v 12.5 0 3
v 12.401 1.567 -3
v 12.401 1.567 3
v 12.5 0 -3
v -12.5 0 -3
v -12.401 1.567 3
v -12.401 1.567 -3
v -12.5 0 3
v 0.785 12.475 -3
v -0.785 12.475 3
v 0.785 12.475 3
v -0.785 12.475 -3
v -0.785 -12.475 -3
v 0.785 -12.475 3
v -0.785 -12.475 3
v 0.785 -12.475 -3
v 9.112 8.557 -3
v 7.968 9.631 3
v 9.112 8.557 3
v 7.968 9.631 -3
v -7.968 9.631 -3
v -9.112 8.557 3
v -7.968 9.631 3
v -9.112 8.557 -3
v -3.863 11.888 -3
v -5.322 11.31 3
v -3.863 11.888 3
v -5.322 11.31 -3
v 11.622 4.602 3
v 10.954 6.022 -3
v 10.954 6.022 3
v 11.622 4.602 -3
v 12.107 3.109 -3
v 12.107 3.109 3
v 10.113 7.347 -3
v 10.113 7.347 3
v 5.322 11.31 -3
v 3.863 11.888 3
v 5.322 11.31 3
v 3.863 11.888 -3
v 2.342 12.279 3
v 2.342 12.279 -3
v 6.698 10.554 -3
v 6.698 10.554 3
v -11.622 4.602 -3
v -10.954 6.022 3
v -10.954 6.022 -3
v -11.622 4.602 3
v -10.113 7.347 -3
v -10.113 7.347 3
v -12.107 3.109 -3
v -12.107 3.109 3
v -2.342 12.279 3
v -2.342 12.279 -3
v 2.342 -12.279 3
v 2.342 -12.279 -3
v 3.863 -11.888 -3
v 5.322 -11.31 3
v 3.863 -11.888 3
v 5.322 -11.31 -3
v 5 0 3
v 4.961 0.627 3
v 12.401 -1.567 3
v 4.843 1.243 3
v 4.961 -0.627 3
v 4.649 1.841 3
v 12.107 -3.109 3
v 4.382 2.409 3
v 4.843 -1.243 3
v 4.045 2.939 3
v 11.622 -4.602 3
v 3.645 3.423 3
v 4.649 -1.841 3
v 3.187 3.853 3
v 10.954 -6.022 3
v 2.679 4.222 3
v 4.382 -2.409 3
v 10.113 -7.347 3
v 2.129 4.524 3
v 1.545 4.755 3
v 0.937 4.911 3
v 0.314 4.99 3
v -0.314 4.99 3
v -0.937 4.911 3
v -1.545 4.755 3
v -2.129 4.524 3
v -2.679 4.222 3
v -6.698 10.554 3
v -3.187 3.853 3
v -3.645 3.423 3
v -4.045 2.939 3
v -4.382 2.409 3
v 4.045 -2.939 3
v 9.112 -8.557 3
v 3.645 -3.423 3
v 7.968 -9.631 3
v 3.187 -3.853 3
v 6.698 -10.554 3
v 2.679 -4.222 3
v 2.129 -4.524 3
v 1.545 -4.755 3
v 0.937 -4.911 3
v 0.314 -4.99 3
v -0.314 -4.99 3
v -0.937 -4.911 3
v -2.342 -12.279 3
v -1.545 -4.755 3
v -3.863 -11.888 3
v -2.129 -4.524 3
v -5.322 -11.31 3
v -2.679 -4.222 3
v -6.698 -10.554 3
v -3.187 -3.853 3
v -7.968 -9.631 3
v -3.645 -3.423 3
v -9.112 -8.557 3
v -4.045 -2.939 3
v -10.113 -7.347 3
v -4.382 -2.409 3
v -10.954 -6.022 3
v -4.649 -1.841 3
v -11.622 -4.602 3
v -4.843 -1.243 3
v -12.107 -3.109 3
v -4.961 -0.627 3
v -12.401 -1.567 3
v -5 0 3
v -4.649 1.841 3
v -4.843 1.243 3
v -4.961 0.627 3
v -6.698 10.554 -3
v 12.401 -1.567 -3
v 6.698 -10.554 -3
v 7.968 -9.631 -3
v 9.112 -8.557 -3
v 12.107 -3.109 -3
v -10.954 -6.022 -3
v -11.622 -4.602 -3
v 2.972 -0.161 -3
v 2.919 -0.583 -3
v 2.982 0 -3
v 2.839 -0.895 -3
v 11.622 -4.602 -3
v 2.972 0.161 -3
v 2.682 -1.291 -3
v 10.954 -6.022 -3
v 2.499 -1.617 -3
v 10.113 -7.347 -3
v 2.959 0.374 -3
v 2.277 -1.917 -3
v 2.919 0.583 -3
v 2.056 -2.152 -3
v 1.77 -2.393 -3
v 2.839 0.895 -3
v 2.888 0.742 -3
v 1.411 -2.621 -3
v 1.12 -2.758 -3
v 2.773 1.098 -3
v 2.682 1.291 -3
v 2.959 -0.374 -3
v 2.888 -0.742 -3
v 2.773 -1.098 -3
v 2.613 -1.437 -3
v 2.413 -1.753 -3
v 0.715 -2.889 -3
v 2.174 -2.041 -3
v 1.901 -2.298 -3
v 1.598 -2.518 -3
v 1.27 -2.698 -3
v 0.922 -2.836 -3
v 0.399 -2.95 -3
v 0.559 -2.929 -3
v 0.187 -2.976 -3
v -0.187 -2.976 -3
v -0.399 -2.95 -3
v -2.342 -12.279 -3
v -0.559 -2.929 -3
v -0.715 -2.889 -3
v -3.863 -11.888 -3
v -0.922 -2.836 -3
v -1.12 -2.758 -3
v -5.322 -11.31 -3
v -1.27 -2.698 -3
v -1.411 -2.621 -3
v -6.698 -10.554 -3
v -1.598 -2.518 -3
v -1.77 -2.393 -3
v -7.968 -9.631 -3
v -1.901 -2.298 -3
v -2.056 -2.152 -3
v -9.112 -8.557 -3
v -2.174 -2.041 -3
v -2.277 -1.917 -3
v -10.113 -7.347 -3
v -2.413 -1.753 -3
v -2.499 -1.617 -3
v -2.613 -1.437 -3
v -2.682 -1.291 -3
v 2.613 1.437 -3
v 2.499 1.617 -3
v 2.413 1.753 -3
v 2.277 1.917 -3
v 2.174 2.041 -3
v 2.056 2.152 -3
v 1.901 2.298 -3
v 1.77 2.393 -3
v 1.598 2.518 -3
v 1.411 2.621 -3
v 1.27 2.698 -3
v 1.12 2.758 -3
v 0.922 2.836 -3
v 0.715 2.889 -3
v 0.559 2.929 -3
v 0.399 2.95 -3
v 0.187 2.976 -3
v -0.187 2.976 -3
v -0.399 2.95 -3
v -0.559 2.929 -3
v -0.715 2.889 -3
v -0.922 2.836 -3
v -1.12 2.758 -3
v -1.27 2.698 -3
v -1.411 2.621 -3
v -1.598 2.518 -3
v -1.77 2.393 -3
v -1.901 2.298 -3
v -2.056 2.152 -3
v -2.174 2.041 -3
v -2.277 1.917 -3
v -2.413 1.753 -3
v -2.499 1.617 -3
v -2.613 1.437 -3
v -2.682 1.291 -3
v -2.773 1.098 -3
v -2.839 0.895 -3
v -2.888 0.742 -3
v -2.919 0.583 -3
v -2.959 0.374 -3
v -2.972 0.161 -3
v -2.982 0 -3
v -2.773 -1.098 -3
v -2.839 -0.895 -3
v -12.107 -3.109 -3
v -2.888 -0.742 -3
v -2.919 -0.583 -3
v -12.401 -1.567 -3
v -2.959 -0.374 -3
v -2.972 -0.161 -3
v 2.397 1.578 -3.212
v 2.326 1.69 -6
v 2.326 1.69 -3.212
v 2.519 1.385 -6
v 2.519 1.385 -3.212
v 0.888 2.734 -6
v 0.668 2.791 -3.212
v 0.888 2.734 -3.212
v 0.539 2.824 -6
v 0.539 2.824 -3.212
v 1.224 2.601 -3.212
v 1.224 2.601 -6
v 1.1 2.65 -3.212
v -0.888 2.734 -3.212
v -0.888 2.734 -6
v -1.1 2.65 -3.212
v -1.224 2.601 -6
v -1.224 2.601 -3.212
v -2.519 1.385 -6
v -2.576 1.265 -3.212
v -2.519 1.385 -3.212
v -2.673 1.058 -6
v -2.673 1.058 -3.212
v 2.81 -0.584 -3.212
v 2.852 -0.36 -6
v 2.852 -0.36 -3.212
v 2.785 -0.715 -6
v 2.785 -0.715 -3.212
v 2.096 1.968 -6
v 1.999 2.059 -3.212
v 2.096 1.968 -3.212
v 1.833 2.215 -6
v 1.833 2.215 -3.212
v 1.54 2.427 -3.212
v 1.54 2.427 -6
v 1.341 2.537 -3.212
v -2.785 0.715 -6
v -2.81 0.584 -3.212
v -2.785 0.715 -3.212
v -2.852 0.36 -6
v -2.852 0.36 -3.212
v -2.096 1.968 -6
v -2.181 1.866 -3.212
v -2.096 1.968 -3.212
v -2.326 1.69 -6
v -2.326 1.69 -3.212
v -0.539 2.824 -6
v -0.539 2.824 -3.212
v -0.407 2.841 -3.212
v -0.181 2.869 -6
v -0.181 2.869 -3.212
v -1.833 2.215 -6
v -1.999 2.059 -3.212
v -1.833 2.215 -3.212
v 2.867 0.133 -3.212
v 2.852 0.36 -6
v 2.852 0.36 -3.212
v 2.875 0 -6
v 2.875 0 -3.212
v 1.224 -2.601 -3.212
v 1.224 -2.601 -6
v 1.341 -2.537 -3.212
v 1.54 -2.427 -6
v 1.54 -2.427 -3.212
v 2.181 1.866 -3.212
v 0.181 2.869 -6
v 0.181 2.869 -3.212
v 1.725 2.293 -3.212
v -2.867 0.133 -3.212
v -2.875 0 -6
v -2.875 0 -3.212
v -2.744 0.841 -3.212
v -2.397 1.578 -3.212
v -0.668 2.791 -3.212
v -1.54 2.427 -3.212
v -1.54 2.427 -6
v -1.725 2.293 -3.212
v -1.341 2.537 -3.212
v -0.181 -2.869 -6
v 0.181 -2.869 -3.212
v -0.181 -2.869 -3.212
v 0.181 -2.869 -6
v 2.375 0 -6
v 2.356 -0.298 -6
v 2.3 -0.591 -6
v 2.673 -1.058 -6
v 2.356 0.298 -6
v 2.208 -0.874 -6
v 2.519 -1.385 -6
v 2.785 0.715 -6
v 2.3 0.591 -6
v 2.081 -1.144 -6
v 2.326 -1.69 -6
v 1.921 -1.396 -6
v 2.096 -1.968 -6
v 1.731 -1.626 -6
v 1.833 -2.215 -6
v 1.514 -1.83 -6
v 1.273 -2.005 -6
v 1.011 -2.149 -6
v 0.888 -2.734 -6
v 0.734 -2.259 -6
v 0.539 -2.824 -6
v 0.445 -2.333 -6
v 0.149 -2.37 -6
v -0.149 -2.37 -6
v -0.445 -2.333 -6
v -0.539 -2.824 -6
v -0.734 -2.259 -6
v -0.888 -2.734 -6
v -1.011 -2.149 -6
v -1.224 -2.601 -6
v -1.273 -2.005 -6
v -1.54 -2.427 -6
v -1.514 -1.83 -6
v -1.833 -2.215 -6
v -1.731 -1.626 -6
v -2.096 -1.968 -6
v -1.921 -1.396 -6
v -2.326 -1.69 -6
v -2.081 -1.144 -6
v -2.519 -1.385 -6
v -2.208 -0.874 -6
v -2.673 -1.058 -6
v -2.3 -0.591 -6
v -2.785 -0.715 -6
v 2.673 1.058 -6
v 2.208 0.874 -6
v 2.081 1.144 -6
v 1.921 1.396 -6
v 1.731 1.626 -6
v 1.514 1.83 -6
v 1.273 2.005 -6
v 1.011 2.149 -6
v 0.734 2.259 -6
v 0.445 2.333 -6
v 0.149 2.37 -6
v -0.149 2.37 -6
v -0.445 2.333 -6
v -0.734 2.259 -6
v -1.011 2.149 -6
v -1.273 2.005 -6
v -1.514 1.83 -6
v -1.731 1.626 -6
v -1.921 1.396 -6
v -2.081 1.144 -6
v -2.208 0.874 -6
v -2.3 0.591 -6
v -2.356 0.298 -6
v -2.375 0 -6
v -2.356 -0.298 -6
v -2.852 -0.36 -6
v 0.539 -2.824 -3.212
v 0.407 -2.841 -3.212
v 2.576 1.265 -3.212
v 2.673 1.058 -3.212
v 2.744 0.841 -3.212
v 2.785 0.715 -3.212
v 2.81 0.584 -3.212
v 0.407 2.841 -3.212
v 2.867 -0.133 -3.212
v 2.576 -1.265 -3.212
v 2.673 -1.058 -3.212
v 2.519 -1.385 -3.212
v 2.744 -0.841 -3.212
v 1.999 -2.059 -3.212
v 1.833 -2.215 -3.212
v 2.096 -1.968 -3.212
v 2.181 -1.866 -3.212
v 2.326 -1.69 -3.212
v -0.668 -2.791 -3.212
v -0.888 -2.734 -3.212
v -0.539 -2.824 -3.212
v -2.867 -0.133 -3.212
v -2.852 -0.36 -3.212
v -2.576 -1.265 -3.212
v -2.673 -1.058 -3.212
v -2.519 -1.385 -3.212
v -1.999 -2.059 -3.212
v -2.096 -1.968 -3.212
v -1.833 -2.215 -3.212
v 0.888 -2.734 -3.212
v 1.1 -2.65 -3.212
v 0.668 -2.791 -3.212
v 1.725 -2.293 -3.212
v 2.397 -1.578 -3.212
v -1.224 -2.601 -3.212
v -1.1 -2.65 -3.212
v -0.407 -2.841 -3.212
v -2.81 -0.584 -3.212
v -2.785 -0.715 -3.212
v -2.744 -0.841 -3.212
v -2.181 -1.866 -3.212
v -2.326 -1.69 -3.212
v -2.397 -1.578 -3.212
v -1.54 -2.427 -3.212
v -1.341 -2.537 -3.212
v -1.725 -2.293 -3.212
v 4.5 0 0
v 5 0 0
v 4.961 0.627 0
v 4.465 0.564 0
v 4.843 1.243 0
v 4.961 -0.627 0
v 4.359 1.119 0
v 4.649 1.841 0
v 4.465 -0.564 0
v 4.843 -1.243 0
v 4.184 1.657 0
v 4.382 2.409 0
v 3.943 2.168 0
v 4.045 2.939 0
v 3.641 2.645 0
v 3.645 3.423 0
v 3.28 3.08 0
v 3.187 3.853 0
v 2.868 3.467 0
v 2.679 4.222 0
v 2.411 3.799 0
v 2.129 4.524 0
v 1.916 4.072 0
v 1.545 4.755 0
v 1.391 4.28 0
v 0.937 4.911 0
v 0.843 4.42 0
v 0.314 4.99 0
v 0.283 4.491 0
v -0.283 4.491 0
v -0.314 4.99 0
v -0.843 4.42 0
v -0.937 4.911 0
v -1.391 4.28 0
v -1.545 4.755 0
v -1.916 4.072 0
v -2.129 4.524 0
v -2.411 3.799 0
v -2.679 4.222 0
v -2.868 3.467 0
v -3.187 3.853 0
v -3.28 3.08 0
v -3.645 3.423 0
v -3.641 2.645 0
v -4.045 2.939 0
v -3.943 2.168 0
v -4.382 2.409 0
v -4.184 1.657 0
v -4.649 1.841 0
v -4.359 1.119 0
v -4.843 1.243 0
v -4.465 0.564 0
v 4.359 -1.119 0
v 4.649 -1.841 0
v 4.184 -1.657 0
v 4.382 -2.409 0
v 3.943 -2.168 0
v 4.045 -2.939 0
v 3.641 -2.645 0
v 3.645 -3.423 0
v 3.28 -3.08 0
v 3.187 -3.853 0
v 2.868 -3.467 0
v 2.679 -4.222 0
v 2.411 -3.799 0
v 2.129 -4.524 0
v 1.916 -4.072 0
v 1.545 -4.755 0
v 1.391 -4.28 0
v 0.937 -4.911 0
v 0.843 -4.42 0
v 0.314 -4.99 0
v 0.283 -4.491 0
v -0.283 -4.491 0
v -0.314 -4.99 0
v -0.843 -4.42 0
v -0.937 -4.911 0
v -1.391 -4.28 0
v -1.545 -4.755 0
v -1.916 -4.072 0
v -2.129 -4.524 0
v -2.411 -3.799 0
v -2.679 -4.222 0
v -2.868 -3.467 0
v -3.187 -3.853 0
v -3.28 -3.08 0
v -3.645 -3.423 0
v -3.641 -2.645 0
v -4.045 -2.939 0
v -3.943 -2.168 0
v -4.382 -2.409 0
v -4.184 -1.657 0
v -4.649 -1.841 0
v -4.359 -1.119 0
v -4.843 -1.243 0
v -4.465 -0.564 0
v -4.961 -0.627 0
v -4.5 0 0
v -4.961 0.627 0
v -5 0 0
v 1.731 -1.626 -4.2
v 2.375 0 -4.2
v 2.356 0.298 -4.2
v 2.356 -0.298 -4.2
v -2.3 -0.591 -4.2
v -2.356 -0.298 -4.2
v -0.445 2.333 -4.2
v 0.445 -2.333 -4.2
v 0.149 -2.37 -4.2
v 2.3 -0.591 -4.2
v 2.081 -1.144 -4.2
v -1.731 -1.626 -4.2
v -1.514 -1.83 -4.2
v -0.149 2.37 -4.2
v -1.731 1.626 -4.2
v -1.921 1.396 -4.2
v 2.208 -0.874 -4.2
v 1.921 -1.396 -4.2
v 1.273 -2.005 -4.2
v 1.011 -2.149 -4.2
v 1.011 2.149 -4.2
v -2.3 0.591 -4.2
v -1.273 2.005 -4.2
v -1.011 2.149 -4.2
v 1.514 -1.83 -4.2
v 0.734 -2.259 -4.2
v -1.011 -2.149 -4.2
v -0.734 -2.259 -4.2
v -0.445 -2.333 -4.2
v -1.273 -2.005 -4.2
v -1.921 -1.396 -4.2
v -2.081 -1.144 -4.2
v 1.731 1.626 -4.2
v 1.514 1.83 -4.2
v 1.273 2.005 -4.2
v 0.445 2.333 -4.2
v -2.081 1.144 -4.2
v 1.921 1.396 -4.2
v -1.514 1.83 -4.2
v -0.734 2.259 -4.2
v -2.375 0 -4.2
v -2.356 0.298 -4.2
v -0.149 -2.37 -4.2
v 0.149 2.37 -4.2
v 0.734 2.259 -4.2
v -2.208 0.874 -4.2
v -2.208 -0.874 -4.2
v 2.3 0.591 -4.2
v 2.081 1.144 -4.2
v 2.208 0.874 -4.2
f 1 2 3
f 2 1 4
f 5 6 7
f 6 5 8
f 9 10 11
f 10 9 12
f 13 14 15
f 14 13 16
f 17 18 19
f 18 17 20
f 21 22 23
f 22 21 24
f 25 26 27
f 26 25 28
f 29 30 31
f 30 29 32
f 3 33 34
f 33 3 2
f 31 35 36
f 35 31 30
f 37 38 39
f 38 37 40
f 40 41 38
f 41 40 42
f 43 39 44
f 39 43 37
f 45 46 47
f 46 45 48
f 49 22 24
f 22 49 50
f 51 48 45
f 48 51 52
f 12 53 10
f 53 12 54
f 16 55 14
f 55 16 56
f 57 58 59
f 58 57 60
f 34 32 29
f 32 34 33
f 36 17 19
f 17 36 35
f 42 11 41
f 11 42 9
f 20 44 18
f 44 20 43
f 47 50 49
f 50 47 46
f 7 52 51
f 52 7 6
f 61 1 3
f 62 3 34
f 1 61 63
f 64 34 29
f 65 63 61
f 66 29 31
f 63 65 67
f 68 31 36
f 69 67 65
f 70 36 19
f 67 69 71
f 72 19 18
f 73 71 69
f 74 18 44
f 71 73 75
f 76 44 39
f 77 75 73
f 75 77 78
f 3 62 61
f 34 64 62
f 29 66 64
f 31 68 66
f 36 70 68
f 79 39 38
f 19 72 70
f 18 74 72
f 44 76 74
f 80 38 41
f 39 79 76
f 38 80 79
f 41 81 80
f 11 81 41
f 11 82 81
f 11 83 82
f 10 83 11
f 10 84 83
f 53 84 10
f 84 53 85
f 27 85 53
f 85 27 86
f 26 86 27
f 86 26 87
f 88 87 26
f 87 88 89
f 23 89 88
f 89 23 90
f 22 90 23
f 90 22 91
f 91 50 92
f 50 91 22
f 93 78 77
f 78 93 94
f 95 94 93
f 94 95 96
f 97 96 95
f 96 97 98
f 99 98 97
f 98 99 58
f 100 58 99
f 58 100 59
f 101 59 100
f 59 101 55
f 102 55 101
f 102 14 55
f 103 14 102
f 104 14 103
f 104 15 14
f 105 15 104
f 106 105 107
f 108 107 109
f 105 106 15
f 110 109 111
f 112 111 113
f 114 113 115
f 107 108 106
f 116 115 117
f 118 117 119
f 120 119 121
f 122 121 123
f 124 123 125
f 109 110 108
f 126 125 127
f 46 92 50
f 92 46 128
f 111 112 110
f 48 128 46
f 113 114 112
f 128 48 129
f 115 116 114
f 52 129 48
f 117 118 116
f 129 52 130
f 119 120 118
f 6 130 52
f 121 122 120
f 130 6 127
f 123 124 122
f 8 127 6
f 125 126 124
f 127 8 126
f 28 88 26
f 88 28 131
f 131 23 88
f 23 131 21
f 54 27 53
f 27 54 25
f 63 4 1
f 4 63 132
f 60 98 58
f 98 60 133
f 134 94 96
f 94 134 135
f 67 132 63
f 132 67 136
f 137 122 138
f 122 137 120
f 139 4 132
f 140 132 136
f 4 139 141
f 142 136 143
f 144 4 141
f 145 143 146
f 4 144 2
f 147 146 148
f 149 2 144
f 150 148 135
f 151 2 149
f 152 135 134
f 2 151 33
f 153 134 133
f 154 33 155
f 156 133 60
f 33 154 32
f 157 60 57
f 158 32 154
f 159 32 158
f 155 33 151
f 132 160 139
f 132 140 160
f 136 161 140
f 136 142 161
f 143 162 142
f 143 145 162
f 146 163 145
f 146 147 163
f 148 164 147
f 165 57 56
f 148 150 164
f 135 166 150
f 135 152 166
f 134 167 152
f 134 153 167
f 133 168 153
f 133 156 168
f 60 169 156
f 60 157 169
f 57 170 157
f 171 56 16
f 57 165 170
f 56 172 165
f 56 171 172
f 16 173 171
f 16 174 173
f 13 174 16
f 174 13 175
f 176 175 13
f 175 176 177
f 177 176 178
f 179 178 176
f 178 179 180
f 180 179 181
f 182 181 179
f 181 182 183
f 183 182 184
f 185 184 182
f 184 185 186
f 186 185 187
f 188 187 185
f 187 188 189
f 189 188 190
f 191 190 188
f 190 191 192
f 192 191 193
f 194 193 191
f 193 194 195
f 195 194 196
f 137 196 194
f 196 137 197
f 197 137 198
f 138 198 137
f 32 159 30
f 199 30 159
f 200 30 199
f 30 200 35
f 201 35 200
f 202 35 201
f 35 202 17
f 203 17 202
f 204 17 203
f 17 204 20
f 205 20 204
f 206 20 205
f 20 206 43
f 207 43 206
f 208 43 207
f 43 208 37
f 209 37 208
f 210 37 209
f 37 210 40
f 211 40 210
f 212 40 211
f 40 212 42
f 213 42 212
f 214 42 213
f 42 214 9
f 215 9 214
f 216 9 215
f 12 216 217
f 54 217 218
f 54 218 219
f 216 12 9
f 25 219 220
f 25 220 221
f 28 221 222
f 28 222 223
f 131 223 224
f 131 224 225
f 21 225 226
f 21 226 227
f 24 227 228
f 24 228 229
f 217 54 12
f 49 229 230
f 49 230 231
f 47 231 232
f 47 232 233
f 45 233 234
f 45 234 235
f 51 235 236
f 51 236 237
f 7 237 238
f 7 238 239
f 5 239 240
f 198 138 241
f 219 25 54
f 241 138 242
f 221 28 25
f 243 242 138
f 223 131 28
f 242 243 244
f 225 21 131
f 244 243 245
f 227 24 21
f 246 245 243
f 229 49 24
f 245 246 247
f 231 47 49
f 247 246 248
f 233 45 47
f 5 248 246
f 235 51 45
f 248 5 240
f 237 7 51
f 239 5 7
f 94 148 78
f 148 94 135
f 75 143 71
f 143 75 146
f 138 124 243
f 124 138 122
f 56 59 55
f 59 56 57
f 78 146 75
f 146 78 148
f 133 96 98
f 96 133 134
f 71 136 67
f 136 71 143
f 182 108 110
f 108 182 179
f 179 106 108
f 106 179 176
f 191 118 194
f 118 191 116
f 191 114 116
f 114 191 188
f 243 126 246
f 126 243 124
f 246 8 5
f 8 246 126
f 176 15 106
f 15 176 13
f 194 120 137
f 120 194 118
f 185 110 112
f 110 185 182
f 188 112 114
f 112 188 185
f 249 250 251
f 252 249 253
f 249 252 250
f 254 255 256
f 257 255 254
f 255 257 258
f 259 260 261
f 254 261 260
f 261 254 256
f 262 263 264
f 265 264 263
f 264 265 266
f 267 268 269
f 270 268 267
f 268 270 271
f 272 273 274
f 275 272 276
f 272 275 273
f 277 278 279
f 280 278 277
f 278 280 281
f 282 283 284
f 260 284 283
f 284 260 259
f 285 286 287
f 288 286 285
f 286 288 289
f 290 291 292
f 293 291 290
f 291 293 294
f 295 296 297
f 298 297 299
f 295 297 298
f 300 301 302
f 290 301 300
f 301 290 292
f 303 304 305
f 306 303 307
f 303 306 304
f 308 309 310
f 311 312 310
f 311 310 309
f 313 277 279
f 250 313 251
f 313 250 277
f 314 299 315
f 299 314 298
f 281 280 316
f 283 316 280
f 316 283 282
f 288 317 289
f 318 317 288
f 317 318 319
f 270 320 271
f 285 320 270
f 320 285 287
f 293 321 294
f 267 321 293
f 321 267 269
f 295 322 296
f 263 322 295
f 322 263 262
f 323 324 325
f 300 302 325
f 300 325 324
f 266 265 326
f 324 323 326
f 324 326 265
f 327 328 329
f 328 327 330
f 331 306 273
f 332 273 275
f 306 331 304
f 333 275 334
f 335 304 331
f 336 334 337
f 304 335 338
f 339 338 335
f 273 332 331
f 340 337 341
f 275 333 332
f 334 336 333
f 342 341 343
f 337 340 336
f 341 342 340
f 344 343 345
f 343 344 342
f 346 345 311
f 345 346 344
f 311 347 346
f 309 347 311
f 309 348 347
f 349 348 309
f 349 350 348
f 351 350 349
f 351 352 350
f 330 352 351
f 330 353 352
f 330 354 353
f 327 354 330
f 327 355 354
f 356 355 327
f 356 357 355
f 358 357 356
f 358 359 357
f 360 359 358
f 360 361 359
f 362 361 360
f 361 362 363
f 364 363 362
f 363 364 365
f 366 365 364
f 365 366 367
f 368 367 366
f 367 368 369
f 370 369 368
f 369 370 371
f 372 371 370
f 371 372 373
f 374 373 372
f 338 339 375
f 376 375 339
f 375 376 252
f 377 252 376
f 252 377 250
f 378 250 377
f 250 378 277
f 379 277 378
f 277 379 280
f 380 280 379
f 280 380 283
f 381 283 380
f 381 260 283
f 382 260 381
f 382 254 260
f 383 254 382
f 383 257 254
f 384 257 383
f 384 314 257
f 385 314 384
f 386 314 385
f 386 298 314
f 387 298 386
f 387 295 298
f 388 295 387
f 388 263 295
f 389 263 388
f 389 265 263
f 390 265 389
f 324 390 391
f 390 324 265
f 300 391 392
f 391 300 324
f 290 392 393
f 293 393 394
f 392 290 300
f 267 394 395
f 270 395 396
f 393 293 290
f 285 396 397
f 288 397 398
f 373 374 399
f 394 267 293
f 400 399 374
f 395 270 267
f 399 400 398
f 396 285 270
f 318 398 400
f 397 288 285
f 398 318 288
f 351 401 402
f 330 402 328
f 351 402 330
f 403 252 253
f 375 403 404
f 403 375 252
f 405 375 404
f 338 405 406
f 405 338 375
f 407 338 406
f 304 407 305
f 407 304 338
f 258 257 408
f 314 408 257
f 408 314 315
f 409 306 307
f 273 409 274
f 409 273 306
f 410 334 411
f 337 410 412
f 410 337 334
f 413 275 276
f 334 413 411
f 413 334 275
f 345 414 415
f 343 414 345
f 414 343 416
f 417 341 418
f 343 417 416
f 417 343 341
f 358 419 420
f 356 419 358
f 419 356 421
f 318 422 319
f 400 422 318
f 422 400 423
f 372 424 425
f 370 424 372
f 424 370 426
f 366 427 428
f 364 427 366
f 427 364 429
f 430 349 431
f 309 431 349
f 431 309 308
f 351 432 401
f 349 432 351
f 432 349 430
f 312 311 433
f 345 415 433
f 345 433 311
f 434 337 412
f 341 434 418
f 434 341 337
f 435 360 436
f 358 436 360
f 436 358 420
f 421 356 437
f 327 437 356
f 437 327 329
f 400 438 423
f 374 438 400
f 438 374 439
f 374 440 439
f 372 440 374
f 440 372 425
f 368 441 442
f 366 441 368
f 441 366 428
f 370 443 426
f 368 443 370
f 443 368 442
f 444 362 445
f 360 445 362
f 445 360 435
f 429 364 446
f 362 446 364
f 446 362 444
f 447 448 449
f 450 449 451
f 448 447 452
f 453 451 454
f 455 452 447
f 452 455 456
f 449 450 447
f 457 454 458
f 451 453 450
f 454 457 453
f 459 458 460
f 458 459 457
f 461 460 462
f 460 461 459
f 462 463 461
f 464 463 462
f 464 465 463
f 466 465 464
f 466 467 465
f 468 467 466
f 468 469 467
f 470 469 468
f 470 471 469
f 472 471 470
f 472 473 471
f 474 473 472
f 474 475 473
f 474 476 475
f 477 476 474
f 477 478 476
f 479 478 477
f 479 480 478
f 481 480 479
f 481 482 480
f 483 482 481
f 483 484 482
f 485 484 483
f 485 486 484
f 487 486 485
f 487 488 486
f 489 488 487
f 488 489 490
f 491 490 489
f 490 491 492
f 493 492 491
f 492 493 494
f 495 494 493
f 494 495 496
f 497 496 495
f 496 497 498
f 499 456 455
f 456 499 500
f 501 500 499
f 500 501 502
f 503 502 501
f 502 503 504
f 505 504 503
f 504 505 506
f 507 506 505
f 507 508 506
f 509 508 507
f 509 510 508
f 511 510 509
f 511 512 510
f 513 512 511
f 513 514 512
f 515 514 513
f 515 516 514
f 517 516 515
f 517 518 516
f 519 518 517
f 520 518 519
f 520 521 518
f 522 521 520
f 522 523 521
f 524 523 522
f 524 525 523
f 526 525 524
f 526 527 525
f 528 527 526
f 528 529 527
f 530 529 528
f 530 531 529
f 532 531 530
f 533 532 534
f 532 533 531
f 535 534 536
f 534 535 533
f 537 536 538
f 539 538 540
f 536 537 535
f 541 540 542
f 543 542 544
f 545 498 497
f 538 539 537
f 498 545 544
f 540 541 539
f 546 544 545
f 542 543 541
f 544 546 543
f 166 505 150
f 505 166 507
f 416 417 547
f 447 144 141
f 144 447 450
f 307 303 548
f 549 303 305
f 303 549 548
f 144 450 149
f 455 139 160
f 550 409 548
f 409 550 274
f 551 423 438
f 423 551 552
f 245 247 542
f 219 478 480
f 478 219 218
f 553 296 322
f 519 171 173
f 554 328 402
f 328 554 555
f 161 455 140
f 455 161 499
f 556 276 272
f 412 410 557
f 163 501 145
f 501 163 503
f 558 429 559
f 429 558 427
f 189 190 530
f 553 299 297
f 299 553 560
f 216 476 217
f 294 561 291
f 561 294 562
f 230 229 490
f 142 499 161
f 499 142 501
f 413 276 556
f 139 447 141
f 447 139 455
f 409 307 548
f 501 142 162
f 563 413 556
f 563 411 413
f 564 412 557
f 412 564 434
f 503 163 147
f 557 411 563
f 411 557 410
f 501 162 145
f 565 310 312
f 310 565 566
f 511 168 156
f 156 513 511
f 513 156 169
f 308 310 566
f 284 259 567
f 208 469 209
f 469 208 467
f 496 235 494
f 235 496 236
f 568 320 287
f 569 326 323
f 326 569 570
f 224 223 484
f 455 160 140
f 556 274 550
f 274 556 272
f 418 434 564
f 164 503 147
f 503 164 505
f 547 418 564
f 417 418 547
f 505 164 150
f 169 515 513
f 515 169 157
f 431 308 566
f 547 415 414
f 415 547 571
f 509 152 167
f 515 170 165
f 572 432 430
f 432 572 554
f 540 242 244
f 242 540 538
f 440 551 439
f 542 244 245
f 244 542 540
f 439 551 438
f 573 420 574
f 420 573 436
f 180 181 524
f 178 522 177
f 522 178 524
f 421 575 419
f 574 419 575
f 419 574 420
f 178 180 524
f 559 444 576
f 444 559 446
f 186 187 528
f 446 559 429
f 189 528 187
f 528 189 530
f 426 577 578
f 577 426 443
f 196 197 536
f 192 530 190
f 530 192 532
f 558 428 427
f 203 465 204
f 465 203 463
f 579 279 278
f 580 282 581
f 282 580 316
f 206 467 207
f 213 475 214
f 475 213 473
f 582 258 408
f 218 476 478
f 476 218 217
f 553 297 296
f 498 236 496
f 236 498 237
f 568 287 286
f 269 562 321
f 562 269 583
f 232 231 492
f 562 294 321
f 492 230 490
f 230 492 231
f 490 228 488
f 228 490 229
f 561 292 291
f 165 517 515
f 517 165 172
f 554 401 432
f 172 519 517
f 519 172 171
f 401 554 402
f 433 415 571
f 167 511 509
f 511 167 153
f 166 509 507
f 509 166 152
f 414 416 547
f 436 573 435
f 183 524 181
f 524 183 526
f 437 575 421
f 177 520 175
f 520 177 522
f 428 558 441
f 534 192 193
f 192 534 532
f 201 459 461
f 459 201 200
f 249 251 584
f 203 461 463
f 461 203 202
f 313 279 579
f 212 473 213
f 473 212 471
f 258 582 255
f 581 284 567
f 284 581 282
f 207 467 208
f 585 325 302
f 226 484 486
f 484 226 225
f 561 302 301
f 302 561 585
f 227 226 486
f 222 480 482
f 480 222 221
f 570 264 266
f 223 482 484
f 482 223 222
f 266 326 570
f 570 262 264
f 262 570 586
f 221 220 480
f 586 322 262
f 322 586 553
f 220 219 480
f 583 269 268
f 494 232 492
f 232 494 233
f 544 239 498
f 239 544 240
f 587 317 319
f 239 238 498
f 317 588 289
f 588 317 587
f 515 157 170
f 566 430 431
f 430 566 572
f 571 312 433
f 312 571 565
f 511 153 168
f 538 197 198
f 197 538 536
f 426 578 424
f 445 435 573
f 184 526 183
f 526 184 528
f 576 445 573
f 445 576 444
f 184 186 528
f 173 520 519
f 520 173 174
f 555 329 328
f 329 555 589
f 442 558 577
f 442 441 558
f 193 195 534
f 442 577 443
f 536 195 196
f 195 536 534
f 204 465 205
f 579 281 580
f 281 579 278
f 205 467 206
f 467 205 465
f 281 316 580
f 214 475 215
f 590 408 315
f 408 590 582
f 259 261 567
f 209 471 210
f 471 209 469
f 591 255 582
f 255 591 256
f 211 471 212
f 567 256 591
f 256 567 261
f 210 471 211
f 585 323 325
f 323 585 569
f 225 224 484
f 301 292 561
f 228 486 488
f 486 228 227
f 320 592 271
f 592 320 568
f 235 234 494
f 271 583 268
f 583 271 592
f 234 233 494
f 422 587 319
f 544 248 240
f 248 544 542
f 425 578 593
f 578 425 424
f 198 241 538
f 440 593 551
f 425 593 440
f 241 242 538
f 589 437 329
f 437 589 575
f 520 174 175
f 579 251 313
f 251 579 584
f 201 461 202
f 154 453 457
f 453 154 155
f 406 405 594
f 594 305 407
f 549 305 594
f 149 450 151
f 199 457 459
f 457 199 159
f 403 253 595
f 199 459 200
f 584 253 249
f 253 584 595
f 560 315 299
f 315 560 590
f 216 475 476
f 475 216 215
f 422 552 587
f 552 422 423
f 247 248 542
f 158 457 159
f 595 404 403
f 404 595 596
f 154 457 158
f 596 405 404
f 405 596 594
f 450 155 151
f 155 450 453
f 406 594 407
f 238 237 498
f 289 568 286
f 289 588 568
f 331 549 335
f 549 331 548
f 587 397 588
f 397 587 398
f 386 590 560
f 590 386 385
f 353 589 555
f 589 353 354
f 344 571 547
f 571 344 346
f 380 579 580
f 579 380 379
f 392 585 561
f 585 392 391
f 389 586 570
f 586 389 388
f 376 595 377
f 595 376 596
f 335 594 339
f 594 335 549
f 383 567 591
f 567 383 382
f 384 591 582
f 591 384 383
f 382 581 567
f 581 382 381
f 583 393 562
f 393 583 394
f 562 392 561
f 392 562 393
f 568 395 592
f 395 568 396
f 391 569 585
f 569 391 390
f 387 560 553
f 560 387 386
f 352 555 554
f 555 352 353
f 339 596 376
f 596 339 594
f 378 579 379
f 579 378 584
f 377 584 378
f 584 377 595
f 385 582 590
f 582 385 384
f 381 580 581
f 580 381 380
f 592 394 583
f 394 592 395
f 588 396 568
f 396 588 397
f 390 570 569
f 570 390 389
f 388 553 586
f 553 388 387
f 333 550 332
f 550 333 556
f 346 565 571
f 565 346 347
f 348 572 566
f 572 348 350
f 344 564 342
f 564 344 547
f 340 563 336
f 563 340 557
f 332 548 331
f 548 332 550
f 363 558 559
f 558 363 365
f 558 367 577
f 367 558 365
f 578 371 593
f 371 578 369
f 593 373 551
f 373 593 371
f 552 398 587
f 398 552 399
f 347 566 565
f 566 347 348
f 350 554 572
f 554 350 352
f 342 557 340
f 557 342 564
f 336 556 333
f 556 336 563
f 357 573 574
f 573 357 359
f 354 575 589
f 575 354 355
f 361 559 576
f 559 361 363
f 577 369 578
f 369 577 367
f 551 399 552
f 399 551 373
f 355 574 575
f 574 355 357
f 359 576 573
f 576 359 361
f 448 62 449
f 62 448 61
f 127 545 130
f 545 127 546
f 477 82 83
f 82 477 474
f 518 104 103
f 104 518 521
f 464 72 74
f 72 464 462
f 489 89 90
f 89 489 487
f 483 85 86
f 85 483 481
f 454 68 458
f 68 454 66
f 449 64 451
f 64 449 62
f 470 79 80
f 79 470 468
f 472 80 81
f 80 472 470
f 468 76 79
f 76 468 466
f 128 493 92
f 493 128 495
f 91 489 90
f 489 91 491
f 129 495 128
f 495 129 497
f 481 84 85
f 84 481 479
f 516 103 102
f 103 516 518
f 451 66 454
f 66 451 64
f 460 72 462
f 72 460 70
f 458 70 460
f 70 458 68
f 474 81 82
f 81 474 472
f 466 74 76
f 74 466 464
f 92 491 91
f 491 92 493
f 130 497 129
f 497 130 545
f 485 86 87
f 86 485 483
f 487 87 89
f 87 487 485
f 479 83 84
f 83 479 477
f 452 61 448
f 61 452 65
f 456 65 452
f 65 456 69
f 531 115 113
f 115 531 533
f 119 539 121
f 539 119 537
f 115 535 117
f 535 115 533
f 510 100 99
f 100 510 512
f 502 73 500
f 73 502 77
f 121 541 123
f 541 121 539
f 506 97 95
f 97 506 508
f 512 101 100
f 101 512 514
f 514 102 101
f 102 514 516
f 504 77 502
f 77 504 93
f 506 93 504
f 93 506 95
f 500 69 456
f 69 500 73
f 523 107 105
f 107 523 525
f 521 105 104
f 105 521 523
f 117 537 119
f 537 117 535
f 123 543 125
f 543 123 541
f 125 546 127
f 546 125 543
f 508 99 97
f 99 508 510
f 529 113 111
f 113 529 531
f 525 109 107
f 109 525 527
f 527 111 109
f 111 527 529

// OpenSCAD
$fn = 50;


difference() {
	union() {
		translate(v = [0, 0, -3.0000000000]) {
			cylinder(h = 6, r = 12.5000000000);
		}
		#translate(v = [0, 0, -6.0000000000]) {
			cylinder(h = 6, r = 2.8750000000);
		}
	}
	union() {
		translate(v = [0, 0, 0]) {
			rotate(a = [0, 0, 0]) {
				difference() {
					union() {
						translate(v = [0, 0, -6.0000000000]) {
							cylinder(h = 6, r = 2.2500000000);
						}
						translate(v = [0, 0, -4.2000000000]) {
							cylinder(h = 4.2000000000, r1 = 2.3750000000, r2 = 4.5000000000);
						}
						translate(v = [0, 0, -6.0000000000]) {
							cylinder(h = 6, r = 2.3750000000);
						}
						translate(v = [0, 0, -6.0000000000]) {
							cylinder(h = 6, r = 2.2500000000);
						}
					}
					union();
				}
			}
		}
		#cylinder(h = 3, r = 5.0000000000);
	}
}
